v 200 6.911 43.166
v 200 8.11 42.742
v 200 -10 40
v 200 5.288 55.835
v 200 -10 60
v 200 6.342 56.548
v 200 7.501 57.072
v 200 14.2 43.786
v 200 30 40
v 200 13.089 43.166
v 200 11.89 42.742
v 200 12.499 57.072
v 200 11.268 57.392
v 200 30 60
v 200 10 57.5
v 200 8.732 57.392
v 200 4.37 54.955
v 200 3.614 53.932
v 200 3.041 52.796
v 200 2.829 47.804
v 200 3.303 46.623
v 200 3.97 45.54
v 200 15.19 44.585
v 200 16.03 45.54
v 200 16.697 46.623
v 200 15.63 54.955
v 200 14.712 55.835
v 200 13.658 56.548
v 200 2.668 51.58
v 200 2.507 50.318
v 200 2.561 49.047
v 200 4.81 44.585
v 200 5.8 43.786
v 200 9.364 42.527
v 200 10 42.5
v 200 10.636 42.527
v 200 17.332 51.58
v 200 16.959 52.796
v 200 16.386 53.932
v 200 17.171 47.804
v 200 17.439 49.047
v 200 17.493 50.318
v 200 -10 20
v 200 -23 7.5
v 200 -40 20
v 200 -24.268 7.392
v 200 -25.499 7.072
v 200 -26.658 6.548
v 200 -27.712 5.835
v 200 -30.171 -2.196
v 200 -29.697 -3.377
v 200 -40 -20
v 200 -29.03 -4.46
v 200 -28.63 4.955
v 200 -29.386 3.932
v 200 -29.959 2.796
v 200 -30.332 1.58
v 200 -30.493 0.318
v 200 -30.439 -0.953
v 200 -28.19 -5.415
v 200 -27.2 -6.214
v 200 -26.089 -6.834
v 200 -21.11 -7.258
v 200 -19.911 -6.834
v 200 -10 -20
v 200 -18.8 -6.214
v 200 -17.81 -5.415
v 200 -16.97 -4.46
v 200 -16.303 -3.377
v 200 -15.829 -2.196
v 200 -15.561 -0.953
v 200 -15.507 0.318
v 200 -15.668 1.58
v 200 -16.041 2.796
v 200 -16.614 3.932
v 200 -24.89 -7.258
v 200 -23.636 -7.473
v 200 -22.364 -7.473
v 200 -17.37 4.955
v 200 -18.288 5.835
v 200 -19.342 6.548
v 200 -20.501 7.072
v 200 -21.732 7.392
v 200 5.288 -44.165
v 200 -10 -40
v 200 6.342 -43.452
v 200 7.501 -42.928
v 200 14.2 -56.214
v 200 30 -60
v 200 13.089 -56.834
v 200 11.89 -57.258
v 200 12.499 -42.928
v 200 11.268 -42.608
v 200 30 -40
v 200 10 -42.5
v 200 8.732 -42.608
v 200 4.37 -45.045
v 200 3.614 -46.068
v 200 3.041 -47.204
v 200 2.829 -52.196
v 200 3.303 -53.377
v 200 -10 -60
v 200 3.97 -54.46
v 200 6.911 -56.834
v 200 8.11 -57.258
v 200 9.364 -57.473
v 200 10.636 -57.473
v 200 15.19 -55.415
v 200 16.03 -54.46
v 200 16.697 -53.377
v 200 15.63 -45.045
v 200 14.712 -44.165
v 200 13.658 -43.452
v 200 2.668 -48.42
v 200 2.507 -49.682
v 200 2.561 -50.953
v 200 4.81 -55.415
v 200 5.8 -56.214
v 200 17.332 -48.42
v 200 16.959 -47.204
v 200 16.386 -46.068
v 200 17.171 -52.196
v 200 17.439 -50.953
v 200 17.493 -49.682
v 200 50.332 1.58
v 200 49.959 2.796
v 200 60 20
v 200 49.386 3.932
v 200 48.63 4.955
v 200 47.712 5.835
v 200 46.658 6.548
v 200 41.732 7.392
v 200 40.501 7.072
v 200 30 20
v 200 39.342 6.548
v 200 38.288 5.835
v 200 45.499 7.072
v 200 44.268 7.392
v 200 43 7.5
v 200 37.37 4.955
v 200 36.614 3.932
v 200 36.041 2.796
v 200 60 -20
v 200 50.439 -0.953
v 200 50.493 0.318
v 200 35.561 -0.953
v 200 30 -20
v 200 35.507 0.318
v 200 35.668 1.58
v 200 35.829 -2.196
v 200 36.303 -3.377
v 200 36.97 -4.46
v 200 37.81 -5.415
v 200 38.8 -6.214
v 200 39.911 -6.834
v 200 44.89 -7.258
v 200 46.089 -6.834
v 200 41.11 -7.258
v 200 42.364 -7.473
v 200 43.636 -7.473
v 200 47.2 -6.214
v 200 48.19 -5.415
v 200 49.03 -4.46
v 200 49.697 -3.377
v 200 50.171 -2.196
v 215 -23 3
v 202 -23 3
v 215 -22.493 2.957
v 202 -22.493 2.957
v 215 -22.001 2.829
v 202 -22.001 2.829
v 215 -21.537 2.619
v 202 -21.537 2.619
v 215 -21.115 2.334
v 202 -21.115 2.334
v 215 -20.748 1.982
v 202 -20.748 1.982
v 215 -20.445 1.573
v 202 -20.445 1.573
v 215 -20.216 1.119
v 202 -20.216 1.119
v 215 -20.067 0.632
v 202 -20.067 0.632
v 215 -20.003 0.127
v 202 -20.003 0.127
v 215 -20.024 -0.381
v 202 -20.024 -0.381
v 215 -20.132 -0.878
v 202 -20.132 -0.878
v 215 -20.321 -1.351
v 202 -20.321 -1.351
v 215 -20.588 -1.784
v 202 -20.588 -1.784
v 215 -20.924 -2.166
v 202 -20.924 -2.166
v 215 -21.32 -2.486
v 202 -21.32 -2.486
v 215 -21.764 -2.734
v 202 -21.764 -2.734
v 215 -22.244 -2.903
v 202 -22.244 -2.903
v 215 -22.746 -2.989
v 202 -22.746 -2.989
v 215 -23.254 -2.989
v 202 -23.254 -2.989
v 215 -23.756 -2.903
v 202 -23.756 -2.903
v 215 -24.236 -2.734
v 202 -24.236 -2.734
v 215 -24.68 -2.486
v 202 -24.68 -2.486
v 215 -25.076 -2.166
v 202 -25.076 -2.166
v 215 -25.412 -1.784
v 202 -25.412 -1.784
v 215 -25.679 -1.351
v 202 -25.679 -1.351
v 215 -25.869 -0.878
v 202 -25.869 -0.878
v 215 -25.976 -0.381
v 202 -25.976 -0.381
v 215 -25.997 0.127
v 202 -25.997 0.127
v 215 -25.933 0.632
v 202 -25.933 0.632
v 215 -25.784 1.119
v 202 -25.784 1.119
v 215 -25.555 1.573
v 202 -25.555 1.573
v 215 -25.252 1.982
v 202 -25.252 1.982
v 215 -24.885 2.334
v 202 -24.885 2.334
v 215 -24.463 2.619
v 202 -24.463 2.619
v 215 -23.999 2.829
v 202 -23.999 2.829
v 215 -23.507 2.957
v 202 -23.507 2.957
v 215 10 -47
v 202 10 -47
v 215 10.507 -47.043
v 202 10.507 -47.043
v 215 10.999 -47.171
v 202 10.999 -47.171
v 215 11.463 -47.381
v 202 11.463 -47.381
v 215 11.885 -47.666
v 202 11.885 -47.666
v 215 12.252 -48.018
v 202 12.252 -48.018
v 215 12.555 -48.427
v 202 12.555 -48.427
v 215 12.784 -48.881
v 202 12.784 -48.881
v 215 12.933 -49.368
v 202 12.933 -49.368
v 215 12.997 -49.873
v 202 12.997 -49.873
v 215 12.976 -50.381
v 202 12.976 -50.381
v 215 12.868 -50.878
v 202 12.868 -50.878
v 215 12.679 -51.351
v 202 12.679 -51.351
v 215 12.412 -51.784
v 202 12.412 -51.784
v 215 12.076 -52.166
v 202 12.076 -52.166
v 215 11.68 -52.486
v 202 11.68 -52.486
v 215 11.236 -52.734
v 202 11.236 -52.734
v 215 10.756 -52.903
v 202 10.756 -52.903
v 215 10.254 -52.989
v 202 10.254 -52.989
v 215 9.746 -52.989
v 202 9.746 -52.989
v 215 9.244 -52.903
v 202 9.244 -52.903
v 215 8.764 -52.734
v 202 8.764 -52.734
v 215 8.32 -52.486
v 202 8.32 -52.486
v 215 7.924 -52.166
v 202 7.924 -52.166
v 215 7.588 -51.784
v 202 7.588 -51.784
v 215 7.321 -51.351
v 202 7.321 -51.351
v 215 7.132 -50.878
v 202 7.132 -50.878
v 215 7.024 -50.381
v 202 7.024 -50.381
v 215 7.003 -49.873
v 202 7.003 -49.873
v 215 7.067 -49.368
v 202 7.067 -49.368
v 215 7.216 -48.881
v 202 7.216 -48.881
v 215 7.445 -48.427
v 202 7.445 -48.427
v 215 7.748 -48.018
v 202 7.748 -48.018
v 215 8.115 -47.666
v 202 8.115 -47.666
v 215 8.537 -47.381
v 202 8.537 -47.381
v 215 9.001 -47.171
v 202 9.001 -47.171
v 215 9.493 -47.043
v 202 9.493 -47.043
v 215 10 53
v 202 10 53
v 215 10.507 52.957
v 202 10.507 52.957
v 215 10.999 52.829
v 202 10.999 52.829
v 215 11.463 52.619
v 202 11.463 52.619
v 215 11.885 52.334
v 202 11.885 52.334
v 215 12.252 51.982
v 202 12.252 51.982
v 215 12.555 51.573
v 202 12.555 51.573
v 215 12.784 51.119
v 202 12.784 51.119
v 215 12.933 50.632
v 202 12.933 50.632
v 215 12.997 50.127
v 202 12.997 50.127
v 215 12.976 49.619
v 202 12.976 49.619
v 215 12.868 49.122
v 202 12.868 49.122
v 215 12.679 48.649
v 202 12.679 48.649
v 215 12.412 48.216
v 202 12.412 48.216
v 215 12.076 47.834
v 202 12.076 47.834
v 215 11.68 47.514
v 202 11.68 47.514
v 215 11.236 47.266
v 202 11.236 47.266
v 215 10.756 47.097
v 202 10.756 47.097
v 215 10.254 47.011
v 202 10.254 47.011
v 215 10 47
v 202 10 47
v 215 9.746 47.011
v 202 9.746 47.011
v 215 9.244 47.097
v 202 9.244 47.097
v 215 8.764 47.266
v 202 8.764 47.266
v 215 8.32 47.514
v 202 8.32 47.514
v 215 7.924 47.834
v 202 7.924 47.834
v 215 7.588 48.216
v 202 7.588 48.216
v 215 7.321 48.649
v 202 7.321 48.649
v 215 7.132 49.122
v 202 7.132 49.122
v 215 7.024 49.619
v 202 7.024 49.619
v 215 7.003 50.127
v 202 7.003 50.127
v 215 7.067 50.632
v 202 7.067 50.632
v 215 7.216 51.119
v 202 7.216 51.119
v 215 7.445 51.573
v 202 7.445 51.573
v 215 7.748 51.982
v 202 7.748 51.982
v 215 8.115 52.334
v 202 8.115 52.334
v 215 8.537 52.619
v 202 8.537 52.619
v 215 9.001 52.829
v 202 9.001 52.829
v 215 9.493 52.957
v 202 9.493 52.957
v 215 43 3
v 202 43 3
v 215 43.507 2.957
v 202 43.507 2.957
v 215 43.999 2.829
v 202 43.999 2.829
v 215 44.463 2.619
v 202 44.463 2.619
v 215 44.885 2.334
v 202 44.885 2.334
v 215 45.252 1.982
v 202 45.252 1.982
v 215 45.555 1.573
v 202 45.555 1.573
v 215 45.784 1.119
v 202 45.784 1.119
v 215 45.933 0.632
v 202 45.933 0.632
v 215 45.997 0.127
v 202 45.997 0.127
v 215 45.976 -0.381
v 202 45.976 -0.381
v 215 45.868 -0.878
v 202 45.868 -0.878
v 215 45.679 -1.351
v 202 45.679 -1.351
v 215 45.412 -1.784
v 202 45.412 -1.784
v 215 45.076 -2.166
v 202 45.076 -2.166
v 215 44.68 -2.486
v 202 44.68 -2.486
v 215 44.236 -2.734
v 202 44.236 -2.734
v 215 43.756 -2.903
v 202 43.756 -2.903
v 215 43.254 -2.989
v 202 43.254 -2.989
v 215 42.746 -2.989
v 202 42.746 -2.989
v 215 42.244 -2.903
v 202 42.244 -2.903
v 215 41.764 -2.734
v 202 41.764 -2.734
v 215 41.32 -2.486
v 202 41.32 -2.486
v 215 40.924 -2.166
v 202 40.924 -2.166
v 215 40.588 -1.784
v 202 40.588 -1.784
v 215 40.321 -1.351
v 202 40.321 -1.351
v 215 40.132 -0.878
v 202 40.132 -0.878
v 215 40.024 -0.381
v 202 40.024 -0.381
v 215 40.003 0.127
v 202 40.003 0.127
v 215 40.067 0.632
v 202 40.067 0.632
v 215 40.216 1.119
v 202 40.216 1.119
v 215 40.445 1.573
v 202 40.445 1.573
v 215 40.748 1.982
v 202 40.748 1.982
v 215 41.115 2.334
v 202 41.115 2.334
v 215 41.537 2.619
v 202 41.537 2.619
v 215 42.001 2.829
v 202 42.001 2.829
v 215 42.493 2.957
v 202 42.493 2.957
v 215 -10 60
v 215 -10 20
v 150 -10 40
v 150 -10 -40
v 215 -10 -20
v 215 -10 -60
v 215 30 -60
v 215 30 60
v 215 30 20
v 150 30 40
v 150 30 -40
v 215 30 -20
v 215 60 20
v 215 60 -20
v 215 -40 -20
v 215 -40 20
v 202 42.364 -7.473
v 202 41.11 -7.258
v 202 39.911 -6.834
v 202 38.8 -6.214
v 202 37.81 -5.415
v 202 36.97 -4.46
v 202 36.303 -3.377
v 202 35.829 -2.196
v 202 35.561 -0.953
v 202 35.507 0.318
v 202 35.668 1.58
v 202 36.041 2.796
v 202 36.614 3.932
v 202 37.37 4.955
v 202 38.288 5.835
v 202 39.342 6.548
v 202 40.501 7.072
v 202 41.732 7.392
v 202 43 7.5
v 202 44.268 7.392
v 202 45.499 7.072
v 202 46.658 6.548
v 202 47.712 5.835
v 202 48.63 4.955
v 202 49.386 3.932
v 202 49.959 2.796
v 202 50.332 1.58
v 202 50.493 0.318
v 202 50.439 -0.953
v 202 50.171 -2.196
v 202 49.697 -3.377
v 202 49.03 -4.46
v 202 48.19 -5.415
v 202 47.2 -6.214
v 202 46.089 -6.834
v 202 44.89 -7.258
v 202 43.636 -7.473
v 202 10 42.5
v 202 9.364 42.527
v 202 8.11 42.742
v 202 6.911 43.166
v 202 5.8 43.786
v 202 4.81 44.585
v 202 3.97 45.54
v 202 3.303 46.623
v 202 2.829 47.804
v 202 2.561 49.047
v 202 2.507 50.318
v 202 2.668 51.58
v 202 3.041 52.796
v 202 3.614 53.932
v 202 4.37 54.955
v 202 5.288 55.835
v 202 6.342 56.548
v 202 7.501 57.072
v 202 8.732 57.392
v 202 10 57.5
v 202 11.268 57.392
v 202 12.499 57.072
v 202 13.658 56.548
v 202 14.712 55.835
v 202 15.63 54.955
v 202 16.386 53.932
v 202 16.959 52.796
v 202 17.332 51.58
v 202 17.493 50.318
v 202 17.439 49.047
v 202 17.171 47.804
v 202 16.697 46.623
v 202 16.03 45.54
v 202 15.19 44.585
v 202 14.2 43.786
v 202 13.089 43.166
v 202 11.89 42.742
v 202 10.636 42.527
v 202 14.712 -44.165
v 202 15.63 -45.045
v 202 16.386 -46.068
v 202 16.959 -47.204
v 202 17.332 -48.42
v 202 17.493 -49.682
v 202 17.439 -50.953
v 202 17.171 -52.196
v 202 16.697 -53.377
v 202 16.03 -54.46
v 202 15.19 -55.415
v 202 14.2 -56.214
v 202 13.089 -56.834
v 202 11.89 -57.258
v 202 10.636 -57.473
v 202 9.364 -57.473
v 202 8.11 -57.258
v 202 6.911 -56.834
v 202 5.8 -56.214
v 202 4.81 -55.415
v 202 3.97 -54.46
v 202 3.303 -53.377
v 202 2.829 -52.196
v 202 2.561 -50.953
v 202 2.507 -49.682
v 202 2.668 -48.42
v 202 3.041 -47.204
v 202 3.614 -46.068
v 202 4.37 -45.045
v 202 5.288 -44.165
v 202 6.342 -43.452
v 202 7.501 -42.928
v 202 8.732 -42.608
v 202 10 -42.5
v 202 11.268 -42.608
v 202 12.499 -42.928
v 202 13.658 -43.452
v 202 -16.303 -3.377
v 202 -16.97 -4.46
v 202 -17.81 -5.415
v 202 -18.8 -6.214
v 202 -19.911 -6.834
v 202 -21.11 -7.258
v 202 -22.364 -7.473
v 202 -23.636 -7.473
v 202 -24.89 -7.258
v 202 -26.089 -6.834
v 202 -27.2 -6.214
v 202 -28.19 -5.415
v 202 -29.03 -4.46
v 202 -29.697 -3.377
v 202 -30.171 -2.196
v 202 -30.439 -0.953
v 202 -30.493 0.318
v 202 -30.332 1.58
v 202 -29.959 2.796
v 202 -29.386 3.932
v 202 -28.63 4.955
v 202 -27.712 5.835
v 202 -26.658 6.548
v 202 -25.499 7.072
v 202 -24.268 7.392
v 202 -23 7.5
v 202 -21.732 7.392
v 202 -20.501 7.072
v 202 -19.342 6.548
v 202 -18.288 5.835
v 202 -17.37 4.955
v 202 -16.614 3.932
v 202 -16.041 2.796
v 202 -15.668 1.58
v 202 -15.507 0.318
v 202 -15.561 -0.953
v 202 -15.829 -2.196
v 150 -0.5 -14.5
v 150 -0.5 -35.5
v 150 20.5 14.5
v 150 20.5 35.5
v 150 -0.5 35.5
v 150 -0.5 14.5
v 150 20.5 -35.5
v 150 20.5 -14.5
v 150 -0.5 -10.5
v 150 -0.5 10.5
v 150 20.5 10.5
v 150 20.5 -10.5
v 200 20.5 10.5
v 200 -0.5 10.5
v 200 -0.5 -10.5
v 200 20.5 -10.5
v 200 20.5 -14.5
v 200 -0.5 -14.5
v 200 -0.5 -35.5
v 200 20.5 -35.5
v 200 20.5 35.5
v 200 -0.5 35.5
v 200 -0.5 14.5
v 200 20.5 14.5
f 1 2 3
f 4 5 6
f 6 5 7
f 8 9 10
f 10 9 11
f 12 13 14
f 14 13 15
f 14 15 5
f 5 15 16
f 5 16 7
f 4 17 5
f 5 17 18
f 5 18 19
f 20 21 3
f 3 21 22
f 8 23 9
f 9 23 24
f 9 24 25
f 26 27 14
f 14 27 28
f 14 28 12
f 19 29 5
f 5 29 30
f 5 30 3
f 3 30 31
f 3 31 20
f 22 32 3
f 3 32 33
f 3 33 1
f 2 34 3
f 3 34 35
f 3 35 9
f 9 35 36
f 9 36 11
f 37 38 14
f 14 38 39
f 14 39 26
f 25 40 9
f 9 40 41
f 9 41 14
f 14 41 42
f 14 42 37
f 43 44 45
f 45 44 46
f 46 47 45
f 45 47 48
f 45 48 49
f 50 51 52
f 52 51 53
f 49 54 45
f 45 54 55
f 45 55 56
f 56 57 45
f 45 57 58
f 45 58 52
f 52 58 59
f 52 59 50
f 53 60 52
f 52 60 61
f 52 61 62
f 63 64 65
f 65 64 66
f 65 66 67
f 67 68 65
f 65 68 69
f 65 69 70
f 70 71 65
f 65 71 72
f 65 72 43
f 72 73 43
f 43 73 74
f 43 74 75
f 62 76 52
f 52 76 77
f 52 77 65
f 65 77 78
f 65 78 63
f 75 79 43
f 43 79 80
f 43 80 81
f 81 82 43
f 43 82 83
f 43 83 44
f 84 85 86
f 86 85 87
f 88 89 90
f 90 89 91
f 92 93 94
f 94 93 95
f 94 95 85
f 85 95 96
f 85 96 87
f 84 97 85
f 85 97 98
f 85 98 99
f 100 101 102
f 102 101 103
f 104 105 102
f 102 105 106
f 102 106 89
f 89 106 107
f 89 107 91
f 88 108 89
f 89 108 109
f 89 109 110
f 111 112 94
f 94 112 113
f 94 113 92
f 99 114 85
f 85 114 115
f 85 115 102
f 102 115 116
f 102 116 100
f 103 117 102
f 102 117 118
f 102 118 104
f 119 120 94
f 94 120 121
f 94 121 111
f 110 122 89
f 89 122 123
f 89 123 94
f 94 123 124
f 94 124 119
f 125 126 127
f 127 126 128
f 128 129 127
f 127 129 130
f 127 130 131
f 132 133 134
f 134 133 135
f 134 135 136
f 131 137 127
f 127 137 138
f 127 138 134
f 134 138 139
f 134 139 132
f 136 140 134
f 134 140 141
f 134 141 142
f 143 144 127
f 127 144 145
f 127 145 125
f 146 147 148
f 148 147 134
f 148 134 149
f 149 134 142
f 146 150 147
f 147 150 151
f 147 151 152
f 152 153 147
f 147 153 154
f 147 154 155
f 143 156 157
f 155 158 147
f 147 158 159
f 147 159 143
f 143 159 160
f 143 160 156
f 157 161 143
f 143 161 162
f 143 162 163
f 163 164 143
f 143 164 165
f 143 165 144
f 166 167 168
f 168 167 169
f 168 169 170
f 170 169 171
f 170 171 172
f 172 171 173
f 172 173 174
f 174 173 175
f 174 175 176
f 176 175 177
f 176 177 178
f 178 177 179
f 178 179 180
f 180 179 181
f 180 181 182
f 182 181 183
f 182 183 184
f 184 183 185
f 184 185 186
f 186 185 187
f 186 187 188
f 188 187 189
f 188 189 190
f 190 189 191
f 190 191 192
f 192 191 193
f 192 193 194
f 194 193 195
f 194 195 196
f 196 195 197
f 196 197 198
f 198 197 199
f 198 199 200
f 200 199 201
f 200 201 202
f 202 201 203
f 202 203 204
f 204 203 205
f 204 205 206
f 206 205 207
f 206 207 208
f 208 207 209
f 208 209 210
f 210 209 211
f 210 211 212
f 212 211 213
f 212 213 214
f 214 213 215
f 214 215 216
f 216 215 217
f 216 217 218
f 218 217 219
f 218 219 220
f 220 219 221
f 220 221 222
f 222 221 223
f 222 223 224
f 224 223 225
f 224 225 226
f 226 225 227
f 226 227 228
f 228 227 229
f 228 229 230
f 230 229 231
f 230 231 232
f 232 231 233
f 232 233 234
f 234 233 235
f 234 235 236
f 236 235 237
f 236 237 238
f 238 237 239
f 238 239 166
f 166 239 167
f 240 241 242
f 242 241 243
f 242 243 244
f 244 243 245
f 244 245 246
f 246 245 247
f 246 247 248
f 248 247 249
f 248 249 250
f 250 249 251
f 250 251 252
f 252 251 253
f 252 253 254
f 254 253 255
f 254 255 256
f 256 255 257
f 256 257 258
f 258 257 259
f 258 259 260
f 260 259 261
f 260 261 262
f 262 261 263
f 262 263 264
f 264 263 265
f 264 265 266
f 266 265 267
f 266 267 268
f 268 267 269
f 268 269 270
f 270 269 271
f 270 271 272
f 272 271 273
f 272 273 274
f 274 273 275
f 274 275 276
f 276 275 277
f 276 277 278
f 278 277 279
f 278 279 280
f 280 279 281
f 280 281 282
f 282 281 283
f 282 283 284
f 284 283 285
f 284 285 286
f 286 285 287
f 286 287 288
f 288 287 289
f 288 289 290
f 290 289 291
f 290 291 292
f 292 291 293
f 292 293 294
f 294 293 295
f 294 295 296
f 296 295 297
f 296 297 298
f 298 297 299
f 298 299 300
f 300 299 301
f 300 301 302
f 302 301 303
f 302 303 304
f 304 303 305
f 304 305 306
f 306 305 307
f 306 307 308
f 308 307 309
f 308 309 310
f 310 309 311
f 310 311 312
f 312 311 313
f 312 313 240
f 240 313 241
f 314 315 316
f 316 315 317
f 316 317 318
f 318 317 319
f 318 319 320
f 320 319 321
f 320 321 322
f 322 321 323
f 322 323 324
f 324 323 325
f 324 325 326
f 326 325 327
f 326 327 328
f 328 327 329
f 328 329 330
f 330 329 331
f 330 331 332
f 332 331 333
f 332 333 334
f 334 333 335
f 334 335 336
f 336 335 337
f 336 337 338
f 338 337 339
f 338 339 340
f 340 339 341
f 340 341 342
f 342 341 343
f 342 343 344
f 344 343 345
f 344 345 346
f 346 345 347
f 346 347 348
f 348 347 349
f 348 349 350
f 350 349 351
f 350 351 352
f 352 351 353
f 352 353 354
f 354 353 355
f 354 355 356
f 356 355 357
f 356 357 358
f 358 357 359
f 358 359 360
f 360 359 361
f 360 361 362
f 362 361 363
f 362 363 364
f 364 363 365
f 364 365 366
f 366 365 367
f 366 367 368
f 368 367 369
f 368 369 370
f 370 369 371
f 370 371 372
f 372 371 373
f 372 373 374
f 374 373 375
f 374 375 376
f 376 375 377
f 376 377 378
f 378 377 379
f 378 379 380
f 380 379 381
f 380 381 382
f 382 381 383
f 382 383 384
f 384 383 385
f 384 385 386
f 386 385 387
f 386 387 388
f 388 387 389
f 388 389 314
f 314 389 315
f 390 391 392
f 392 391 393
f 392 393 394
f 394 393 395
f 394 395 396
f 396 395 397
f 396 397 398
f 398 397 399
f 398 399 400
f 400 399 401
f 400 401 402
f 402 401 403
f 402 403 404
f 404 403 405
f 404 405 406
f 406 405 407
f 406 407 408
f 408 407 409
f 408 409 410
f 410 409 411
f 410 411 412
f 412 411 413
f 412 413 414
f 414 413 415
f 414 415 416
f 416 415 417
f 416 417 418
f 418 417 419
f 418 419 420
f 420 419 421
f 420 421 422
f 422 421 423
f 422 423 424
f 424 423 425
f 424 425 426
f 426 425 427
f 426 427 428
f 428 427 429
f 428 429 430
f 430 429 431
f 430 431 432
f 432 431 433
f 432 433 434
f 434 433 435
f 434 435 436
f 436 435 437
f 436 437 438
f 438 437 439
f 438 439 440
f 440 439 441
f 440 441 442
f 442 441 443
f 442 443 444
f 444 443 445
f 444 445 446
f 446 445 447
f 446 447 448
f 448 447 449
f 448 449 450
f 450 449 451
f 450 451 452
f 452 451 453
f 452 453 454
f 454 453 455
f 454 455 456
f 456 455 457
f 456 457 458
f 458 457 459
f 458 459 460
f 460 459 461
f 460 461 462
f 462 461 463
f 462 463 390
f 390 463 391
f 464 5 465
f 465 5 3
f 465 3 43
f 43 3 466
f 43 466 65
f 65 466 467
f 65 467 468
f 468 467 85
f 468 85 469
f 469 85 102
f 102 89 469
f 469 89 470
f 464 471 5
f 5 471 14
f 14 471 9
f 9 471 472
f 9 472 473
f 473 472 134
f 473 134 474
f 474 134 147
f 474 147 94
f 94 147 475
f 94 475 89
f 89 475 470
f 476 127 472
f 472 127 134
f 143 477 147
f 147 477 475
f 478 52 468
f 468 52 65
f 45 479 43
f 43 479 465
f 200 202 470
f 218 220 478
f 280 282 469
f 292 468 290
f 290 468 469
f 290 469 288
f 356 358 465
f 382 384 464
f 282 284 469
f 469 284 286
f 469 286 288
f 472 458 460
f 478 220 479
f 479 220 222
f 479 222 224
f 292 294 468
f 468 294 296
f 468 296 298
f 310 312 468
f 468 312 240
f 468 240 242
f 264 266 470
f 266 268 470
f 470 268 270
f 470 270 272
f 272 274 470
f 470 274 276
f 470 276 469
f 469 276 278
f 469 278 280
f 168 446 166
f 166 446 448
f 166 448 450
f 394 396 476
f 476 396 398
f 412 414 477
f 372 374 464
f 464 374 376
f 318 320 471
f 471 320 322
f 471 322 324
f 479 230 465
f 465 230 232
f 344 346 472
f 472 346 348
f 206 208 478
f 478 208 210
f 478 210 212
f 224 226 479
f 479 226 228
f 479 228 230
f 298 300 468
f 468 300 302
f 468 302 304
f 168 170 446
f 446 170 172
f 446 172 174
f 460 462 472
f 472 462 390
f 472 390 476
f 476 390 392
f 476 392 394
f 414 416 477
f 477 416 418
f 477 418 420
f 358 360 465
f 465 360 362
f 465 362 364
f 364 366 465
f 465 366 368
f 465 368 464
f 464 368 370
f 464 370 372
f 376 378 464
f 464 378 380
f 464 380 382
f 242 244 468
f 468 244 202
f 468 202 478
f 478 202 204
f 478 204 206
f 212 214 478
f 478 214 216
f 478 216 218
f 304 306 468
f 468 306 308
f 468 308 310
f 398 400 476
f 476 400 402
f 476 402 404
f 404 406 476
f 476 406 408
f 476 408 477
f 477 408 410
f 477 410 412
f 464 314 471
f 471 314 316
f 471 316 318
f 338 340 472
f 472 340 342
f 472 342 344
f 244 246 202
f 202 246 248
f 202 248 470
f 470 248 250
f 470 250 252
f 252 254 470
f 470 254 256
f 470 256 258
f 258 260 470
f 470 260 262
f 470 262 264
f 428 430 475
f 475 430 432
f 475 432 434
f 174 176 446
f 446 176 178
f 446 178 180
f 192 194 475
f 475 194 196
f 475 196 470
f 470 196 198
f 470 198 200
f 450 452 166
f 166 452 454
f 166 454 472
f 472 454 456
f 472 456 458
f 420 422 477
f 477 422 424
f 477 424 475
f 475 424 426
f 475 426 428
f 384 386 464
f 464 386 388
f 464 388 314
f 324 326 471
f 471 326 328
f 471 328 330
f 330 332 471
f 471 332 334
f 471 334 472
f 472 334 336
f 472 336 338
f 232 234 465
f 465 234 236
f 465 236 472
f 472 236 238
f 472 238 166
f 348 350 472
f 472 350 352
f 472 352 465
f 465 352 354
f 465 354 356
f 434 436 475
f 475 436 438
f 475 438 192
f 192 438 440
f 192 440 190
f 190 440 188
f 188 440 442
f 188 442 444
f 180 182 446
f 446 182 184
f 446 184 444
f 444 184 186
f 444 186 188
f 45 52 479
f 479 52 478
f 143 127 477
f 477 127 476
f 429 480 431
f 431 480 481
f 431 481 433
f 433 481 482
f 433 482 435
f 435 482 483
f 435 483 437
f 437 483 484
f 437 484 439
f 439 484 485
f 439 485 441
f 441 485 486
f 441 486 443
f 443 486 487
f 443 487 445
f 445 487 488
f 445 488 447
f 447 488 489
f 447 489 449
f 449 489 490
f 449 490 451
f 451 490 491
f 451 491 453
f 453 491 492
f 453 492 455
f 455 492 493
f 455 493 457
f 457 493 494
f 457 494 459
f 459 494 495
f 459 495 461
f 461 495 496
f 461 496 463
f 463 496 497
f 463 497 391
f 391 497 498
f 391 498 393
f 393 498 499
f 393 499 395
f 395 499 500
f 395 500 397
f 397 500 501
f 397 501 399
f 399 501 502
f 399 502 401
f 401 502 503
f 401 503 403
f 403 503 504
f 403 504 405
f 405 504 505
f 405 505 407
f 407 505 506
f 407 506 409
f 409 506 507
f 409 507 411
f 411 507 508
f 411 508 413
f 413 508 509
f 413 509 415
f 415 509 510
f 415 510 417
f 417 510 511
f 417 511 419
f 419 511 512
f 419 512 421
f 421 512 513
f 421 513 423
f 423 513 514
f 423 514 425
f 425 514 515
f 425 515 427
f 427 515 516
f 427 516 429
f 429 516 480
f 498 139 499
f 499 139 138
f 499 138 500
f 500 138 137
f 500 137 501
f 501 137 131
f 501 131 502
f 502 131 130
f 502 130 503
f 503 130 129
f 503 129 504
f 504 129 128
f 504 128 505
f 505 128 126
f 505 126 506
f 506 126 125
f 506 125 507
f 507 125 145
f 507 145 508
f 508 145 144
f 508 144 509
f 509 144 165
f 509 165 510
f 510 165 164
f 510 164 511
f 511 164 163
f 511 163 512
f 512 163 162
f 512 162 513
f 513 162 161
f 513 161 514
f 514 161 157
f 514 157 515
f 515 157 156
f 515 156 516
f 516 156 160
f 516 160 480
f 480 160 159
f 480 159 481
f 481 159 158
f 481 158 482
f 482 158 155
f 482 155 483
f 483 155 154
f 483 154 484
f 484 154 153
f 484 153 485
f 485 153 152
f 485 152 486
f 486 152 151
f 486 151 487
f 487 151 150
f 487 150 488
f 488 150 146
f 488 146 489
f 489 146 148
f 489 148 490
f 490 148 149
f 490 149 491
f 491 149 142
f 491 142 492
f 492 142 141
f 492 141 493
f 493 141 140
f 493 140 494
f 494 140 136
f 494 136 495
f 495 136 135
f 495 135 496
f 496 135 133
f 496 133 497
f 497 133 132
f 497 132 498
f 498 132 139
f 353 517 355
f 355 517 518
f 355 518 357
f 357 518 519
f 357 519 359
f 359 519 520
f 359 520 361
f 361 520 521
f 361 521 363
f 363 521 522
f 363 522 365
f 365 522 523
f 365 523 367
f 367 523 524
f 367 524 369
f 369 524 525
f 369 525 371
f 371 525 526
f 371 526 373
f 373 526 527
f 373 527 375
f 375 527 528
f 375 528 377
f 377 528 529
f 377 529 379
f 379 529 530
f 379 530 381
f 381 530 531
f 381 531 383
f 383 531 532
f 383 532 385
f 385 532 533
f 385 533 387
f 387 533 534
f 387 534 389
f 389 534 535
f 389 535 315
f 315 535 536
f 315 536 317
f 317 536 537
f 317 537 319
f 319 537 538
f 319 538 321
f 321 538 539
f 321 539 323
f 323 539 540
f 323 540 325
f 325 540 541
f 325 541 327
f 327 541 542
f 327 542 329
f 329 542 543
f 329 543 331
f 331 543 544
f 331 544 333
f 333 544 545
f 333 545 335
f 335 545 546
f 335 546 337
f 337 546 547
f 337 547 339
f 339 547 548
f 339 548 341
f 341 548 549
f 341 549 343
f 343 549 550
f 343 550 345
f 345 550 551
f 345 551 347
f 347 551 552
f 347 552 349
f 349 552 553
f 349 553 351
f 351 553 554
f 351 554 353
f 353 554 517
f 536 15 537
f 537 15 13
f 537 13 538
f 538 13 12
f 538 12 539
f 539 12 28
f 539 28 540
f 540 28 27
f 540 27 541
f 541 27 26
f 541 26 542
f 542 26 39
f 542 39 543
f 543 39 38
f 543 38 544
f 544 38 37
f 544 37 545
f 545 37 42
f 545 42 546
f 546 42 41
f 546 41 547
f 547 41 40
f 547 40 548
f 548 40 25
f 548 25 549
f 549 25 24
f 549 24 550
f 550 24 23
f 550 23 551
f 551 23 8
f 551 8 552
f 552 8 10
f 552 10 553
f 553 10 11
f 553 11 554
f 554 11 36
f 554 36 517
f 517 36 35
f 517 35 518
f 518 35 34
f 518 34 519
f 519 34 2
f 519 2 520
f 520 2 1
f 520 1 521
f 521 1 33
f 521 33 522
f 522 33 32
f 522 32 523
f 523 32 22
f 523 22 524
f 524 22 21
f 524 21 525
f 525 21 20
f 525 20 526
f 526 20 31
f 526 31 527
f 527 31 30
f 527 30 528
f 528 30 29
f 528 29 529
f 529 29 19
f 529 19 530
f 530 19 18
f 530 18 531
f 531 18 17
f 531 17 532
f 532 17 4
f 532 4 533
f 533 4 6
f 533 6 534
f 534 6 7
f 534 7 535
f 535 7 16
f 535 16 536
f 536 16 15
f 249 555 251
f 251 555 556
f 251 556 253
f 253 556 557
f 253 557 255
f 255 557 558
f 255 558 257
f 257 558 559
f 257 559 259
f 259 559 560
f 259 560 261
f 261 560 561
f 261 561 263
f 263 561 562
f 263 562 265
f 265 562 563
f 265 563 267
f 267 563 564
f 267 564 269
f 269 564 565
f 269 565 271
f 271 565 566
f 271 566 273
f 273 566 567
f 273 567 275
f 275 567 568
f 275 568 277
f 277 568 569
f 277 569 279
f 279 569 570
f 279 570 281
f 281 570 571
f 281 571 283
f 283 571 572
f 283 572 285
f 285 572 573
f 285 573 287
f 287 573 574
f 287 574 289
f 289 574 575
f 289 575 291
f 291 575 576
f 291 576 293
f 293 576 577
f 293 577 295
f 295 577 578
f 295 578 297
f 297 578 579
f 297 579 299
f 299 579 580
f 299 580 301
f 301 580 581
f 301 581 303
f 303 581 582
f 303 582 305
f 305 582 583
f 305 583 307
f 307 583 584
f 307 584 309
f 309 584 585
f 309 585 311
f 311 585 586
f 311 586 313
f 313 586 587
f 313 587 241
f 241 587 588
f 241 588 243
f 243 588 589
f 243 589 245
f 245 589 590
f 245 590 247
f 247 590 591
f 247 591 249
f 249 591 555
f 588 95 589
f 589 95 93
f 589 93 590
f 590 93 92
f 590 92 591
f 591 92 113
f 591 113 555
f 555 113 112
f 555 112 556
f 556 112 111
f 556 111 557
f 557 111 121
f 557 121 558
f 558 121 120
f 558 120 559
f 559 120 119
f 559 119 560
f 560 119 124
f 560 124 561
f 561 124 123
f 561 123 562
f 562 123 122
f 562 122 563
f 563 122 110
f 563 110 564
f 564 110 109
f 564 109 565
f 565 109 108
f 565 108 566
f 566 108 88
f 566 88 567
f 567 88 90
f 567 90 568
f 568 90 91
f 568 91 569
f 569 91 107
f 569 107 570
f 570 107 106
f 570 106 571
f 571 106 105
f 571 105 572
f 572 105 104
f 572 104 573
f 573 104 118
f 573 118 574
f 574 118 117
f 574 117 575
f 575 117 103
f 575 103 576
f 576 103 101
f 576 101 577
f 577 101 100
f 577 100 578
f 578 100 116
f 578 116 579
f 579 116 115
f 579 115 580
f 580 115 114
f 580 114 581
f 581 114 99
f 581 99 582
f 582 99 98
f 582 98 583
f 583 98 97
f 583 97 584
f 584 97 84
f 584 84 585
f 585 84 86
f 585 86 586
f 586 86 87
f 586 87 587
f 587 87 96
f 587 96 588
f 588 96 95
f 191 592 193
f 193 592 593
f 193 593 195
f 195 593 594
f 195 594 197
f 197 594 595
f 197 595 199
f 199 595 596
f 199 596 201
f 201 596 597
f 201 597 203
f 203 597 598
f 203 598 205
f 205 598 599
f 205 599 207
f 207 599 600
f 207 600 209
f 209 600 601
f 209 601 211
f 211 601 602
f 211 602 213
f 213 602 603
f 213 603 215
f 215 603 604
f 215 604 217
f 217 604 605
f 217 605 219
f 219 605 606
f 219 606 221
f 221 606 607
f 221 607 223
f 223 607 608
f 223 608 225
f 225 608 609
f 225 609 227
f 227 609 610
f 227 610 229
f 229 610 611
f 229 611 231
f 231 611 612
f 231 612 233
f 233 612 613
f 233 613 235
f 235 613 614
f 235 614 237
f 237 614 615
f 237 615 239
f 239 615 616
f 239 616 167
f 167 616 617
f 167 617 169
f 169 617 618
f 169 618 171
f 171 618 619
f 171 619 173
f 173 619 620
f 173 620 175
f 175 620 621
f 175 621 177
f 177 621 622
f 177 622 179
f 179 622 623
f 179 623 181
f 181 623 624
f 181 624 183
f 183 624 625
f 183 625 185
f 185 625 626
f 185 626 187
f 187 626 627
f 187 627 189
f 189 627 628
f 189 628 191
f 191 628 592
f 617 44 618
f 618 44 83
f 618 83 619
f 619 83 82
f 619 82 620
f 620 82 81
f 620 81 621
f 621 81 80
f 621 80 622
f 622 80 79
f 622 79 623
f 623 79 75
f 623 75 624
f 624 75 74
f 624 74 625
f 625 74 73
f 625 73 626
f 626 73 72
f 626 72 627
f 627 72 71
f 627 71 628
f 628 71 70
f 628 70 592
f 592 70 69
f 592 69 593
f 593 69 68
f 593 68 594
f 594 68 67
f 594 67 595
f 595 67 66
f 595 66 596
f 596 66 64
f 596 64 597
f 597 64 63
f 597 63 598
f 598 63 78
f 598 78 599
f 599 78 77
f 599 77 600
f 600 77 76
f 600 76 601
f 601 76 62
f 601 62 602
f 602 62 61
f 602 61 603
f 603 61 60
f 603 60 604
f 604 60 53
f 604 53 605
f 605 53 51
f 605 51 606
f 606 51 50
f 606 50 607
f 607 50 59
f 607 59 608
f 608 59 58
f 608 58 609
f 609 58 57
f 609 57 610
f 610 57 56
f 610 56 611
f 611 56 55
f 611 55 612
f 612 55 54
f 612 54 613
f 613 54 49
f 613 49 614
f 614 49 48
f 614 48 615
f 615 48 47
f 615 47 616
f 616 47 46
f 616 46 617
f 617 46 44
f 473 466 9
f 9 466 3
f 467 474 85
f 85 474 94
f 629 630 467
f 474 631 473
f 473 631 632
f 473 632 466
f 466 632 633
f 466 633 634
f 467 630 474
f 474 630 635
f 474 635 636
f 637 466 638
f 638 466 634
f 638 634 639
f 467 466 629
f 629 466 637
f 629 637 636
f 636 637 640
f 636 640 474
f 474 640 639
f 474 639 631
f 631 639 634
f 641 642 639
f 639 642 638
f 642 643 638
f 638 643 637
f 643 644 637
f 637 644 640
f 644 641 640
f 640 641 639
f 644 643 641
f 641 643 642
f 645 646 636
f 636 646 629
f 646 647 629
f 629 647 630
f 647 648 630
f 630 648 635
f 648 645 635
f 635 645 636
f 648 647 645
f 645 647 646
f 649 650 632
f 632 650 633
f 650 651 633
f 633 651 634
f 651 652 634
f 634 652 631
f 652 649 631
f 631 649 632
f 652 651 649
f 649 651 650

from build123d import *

# Parameters (mm, degrees)
STOCK_EXHAUST_M5_WASHER15_B_1_START         = 200
STOCK_EXHAUST_M5_WASHER15_B_1_OUTLINE_R     = 7.5
STOCK_EXHAUST_M5_WASHER15_B_1_DEPTH         = 15
STOCK_EXHAUST_M5_WASHER15_B_1_START_2       = 202
STOCK_EXHAUST_M5_WASHER15_B_1_2_OUTLINE_R   = 7.5
STOCK_EXHAUST_M5_WASHER15_B_1_2_OUTLINE_R_2 = 3
STOCK_EXHAUST_M5_WASHER15_B_1_2_DEPTH       = 13
SKETCH1_W                                   = 80
SKETCH1_H                                   = 40
BOSS_EXTRUDE1_DEPTH                         = 50
SKETCH2_W                                   = 21
SKETCH2_H                                   = 21
CUT_EXTRUDE1_DEPTH                          = 50
LPATTERN1_COUNT                             = 2
LPATTERN1_PITCH                             = 25
LPATTERN1_COL_COUNT                         = 2
LPATTERN1_COL_PITCH                         = 25


# Read off the part's stored shape, not the designer's step: Stock-Exhaust_M5_washer15_B-1
with BuildPart() as part:
    # Stock-Exhaust_M5_washer15_B-1 outline → Stock-Exhaust_M5_washer15_B-1 (new body)
    with BuildSketch(Plane.YZ.offset(STOCK_EXHAUST_M5_WASHER15_B_1_START)):
        Polygon((-40, -20), (-10, -20), (-10, -60), (30, -60), (30, -20), (60, -20), (60, 20), (30, 20), (30, 60), (-10, 60), (-10, 20), (-40, 20), align=None)
        with Locations((10, -50)):
            Circle(STOCK_EXHAUST_M5_WASHER15_B_1_OUTLINE_R, mode=Mode.SUBTRACT)
        with Locations((-23, 0)):
            Circle(STOCK_EXHAUST_M5_WASHER15_B_1_OUTLINE_R, mode=Mode.SUBTRACT)
        with Locations((43, 0)):
            Circle(STOCK_EXHAUST_M5_WASHER15_B_1_OUTLINE_R, mode=Mode.SUBTRACT)
        with Locations((10, 50)):
            Circle(STOCK_EXHAUST_M5_WASHER15_B_1_OUTLINE_R, mode=Mode.SUBTRACT)
    extrude(amount=STOCK_EXHAUST_M5_WASHER15_B_1_DEPTH)

    # Stock-Exhaust_M5_washer15_B-1 2 outline → Stock-Exhaust_M5_washer15_B-1 2 (add)
    # profile 1 of 4: a face of its own
    with BuildSketch(Plane.YZ.offset(STOCK_EXHAUST_M5_WASHER15_B_1_START_2)):
        with Locations((43, 0)):
            Circle(STOCK_EXHAUST_M5_WASHER15_B_1_2_OUTLINE_R)
        with Locations((43, 0)):
            Circle(STOCK_EXHAUST_M5_WASHER15_B_1_2_OUTLINE_R_2, mode=Mode.SUBTRACT)
    # profile 2 of 4: a face of its own
    with BuildSketch(Plane.YZ.offset(STOCK_EXHAUST_M5_WASHER15_B_1_START_2)):
        with Locations((10, 50)):
            Circle(STOCK_EXHAUST_M5_WASHER15_B_1_2_OUTLINE_R)
        with Locations((10, 50)):
            Circle(STOCK_EXHAUST_M5_WASHER15_B_1_2_OUTLINE_R_2, mode=Mode.SUBTRACT)
    # profile 3 of 4: a face of its own
    with BuildSketch(Plane.YZ.offset(STOCK_EXHAUST_M5_WASHER15_B_1_START_2)):
        with Locations((10, -50)):
            Circle(STOCK_EXHAUST_M5_WASHER15_B_1_2_OUTLINE_R)
        with Locations((10, -50)):
            Circle(STOCK_EXHAUST_M5_WASHER15_B_1_2_OUTLINE_R_2, mode=Mode.SUBTRACT)
    # profile 4 of 4: a face of its own
    with BuildSketch(Plane.YZ.offset(STOCK_EXHAUST_M5_WASHER15_B_1_START_2)):
        with Locations((-23, 0)):
            Circle(STOCK_EXHAUST_M5_WASHER15_B_1_2_OUTLINE_R)
        with Locations((-23, 0)):
            Circle(STOCK_EXHAUST_M5_WASHER15_B_1_2_OUTLINE_R_2, mode=Mode.SUBTRACT)
    extrude(amount=STOCK_EXHAUST_M5_WASHER15_B_1_2_DEPTH)

    # Sketch1 → Boss-Extrude1 (add)
    with BuildSketch(Plane.ZY.offset(-200)):
        with Locations((0, 10)):
            Rectangle(SKETCH1_W, SKETCH1_H)
    extrude(amount=BOSS_EXTRUDE1_DEPTH)

    # Sketch2 → Cut-Extrude1 (cut)
    with BuildSketch(Plane.ZY.offset(-150)):
        with Locations((0, 10)):
            Rectangle(SKETCH2_W, SKETCH2_H)
    cut_extrude1 = extrude(amount=-CUT_EXTRUDE1_DEPTH, mode=Mode.SUBTRACT)

    # LPattern1: Cut-Extrude1 ×2
    with Locations(*[(0, 0, i * LPATTERN1_PITCH) for i in range(1, LPATTERN1_COUNT)]):
        add(cut_extrude1, mode=Mode.SUBTRACT)

    # LPattern1 col: Cut-Extrude1 ×2
    with Locations(*[(0, 0, -i * LPATTERN1_COL_PITCH) for i in range(1, LPATTERN1_COL_COUNT)]):
        add(cut_extrude1, mode=Mode.SUBTRACT)


solid = part.part
